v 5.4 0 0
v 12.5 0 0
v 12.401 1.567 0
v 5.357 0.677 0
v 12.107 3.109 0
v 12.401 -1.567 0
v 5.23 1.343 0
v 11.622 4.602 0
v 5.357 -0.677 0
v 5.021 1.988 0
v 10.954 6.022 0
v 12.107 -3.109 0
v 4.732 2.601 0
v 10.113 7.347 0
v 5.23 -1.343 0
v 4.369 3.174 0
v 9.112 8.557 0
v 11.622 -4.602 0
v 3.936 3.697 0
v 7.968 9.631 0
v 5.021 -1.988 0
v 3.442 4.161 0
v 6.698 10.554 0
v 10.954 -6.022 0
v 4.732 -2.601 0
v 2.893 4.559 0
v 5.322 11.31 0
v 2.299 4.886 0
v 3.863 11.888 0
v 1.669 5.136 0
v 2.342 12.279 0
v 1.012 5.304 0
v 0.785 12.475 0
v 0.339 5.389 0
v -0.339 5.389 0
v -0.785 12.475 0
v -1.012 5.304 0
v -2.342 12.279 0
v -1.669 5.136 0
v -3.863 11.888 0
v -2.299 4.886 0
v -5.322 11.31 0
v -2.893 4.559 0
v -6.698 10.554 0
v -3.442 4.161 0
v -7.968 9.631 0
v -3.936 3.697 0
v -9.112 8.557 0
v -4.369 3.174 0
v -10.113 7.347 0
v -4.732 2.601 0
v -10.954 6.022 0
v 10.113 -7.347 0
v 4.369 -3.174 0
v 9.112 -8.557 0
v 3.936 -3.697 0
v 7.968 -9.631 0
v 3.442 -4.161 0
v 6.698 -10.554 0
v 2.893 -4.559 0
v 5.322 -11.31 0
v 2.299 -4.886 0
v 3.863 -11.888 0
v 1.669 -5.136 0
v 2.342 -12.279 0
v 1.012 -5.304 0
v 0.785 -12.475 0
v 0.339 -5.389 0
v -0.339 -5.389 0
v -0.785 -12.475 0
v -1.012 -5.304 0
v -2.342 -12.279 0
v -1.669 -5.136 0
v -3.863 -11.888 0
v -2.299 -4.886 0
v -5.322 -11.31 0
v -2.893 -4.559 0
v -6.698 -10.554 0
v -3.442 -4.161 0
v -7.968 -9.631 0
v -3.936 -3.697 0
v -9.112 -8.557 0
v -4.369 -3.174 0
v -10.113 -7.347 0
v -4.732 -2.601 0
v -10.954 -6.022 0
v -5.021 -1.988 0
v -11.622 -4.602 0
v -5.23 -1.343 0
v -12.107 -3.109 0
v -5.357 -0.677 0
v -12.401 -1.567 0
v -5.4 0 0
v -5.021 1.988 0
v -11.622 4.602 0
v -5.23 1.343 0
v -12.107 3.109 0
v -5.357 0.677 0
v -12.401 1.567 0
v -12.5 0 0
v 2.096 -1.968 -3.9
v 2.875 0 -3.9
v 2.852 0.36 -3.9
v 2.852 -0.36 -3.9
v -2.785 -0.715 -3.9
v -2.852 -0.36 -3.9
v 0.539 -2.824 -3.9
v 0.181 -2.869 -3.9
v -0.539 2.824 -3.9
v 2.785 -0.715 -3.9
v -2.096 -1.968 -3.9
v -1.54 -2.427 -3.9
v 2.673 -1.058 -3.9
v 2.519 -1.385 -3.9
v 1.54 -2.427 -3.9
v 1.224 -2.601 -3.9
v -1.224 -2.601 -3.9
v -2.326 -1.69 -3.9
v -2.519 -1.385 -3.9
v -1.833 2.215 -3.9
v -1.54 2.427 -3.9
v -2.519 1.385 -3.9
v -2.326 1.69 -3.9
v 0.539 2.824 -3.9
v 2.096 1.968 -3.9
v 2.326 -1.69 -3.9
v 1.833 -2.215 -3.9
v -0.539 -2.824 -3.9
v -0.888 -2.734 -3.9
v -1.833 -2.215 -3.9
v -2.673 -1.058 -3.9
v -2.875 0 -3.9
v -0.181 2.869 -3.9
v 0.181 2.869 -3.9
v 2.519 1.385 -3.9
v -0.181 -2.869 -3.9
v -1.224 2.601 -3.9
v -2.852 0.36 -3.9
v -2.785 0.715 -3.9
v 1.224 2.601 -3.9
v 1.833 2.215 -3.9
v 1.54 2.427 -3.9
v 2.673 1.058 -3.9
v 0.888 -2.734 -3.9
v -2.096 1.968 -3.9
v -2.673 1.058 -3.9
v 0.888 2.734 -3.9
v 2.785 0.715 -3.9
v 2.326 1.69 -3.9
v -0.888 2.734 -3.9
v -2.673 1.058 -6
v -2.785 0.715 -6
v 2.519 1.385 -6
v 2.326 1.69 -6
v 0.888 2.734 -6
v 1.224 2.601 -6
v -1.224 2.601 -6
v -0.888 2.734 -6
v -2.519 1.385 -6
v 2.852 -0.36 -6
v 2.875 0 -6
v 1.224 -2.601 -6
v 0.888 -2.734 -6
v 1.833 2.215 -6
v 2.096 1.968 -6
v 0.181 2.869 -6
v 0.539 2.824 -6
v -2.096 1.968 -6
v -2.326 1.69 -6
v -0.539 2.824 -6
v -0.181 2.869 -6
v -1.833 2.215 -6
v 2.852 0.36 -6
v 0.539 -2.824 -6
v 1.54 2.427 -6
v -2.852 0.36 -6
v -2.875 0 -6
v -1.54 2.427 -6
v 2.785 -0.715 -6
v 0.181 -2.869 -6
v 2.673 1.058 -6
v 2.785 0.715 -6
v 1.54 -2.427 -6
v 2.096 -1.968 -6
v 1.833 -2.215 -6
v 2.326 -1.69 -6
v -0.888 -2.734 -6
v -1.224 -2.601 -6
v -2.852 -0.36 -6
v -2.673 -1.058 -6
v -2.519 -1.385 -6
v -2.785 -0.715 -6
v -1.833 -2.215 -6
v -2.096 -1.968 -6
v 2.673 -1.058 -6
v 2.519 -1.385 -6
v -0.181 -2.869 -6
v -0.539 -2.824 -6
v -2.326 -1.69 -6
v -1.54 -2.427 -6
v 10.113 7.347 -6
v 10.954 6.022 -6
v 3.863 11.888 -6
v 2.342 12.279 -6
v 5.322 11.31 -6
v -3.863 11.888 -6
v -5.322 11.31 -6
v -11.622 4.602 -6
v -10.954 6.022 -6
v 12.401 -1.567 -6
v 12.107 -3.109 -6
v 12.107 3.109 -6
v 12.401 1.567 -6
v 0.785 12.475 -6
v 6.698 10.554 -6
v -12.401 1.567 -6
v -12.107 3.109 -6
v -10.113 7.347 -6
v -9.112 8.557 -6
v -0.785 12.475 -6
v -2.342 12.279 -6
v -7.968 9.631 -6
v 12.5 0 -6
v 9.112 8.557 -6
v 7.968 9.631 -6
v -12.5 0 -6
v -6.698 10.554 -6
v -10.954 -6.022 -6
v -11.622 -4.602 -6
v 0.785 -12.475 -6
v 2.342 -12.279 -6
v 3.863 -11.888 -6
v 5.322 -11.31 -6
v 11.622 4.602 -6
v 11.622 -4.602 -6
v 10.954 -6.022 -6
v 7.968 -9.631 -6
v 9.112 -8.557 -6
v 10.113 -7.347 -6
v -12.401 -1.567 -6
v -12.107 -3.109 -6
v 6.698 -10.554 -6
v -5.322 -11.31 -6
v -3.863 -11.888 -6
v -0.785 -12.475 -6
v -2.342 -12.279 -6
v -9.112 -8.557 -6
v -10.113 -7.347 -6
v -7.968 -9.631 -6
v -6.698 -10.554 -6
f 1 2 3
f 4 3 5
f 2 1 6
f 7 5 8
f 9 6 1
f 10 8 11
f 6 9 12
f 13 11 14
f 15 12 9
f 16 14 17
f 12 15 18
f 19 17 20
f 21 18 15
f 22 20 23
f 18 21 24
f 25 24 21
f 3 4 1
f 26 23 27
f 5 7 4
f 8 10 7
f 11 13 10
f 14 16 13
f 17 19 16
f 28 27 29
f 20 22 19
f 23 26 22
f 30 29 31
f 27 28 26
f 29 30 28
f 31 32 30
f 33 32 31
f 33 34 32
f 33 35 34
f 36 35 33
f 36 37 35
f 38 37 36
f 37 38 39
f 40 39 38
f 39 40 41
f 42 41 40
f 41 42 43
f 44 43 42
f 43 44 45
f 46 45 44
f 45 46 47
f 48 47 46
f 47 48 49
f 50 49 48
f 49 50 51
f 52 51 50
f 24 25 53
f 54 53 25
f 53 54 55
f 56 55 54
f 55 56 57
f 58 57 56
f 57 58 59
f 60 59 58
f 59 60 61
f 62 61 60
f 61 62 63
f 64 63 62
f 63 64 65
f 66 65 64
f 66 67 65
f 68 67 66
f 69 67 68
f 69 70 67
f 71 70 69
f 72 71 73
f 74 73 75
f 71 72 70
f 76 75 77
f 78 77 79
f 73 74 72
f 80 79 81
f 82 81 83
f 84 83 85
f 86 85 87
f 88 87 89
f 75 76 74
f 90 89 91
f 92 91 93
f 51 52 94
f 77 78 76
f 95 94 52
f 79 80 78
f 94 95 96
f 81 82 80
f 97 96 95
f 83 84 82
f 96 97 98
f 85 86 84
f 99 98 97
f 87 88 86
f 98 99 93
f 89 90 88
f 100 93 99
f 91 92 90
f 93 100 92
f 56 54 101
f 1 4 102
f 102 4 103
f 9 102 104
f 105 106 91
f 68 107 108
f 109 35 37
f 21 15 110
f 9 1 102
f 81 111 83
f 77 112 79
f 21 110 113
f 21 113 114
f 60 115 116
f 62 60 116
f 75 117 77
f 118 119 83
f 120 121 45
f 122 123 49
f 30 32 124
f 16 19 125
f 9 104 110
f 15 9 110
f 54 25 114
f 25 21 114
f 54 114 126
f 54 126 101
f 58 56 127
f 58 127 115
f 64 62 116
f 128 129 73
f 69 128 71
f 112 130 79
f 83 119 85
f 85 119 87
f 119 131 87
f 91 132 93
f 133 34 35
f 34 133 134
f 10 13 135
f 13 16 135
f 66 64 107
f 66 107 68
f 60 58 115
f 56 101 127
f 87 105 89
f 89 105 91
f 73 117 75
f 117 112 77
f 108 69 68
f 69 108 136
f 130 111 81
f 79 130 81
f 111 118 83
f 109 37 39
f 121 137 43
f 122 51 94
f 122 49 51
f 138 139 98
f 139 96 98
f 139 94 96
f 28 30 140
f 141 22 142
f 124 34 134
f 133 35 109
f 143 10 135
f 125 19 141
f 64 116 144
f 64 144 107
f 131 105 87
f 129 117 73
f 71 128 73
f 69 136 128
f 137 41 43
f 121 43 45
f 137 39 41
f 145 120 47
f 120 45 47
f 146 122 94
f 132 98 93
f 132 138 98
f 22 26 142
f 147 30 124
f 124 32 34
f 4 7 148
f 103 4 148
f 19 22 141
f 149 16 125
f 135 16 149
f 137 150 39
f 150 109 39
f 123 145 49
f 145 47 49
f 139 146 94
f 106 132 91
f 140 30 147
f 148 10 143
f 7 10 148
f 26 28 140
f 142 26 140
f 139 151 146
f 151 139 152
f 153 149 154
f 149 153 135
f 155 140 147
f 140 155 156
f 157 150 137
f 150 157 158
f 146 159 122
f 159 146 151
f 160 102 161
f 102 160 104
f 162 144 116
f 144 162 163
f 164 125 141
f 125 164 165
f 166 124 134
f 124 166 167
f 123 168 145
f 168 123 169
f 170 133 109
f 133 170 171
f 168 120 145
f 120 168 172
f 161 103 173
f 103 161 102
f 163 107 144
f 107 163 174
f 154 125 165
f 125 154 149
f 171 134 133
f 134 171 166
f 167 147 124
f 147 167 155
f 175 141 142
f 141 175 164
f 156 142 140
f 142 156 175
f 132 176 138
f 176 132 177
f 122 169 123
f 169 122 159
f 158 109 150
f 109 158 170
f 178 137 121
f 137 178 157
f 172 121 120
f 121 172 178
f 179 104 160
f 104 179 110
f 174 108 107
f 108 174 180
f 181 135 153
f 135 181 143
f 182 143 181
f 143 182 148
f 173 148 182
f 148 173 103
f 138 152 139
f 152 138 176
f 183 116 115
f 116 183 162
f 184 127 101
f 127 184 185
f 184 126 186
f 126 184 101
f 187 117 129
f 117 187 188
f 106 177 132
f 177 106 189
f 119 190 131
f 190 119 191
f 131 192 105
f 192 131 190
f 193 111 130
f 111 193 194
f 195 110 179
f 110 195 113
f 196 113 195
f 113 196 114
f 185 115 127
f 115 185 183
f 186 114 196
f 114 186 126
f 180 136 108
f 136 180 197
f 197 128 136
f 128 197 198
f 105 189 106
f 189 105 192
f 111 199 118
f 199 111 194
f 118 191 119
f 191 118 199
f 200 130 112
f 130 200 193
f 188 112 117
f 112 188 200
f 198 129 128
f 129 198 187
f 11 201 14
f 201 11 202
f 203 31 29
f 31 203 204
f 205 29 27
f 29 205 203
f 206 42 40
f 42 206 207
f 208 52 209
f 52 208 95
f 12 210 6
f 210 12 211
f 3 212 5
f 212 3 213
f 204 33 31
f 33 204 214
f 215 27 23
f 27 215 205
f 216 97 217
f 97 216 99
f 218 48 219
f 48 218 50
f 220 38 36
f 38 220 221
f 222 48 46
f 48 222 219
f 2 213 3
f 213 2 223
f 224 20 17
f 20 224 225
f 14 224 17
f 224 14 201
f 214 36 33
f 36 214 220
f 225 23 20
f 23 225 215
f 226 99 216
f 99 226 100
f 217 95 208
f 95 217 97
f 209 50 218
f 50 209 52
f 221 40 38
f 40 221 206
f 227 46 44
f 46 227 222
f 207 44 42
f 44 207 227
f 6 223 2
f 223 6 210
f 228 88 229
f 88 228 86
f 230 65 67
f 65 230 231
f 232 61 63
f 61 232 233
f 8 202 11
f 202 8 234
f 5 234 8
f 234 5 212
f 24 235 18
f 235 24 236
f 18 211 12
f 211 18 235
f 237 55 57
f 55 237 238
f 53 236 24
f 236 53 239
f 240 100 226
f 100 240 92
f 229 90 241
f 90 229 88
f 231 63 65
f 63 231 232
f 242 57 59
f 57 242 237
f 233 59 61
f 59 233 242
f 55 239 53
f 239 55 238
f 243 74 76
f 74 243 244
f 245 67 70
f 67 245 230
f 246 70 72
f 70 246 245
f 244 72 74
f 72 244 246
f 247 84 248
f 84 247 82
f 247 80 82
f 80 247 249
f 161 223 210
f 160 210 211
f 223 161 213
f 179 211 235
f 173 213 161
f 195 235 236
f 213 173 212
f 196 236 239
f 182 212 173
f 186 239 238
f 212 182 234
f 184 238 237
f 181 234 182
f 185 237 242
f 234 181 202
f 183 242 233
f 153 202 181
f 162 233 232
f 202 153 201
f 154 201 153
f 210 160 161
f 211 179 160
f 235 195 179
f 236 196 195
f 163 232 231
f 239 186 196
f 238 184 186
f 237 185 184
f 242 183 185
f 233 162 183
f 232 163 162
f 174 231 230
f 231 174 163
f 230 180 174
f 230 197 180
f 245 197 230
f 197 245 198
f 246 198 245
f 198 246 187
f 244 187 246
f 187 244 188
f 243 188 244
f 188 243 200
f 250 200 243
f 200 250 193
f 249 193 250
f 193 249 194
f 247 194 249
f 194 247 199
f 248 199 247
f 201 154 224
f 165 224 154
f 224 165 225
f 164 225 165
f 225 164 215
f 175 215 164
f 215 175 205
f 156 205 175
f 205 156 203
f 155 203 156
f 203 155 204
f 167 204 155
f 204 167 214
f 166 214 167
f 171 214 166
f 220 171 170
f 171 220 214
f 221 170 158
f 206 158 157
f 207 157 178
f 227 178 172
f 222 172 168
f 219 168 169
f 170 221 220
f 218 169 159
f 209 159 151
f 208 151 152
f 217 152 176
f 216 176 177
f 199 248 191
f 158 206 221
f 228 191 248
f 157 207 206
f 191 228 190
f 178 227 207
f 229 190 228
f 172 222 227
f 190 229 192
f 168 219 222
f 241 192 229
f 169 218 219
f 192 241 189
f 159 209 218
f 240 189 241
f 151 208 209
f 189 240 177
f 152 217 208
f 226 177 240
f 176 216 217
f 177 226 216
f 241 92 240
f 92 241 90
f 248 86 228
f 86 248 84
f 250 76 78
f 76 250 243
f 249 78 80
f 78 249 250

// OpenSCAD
$fn = 50;

difference() {
	union() {
		translate(v = [0, 0, -6.0]) {
			cylinder(h = 6, r = 12.5);
		}
	}
	union() {
		translate(v = [0, 0, 0]) {
			rotate(a = [0, 0, 0]) {
				difference() {
					union() {
						translate(v = [0, 0, -9.0]) {
							cylinder(h = 9, r = 2.6);
						}
						translate(v = [0, 0, -3.9]) {
							cylinder(h = 3.9, r1 = 2.875, r2 = 5.4);
						}
						translate(v = [0, 0, -9.0]) {
							cylinder(h = 9, r = 2.875);
						}
						translate(v = [0, 0, -9.0]) {
							cylinder(h = 9, r = 2.6);
						}
					}
					union();
				}
			}
		}
	}
}
